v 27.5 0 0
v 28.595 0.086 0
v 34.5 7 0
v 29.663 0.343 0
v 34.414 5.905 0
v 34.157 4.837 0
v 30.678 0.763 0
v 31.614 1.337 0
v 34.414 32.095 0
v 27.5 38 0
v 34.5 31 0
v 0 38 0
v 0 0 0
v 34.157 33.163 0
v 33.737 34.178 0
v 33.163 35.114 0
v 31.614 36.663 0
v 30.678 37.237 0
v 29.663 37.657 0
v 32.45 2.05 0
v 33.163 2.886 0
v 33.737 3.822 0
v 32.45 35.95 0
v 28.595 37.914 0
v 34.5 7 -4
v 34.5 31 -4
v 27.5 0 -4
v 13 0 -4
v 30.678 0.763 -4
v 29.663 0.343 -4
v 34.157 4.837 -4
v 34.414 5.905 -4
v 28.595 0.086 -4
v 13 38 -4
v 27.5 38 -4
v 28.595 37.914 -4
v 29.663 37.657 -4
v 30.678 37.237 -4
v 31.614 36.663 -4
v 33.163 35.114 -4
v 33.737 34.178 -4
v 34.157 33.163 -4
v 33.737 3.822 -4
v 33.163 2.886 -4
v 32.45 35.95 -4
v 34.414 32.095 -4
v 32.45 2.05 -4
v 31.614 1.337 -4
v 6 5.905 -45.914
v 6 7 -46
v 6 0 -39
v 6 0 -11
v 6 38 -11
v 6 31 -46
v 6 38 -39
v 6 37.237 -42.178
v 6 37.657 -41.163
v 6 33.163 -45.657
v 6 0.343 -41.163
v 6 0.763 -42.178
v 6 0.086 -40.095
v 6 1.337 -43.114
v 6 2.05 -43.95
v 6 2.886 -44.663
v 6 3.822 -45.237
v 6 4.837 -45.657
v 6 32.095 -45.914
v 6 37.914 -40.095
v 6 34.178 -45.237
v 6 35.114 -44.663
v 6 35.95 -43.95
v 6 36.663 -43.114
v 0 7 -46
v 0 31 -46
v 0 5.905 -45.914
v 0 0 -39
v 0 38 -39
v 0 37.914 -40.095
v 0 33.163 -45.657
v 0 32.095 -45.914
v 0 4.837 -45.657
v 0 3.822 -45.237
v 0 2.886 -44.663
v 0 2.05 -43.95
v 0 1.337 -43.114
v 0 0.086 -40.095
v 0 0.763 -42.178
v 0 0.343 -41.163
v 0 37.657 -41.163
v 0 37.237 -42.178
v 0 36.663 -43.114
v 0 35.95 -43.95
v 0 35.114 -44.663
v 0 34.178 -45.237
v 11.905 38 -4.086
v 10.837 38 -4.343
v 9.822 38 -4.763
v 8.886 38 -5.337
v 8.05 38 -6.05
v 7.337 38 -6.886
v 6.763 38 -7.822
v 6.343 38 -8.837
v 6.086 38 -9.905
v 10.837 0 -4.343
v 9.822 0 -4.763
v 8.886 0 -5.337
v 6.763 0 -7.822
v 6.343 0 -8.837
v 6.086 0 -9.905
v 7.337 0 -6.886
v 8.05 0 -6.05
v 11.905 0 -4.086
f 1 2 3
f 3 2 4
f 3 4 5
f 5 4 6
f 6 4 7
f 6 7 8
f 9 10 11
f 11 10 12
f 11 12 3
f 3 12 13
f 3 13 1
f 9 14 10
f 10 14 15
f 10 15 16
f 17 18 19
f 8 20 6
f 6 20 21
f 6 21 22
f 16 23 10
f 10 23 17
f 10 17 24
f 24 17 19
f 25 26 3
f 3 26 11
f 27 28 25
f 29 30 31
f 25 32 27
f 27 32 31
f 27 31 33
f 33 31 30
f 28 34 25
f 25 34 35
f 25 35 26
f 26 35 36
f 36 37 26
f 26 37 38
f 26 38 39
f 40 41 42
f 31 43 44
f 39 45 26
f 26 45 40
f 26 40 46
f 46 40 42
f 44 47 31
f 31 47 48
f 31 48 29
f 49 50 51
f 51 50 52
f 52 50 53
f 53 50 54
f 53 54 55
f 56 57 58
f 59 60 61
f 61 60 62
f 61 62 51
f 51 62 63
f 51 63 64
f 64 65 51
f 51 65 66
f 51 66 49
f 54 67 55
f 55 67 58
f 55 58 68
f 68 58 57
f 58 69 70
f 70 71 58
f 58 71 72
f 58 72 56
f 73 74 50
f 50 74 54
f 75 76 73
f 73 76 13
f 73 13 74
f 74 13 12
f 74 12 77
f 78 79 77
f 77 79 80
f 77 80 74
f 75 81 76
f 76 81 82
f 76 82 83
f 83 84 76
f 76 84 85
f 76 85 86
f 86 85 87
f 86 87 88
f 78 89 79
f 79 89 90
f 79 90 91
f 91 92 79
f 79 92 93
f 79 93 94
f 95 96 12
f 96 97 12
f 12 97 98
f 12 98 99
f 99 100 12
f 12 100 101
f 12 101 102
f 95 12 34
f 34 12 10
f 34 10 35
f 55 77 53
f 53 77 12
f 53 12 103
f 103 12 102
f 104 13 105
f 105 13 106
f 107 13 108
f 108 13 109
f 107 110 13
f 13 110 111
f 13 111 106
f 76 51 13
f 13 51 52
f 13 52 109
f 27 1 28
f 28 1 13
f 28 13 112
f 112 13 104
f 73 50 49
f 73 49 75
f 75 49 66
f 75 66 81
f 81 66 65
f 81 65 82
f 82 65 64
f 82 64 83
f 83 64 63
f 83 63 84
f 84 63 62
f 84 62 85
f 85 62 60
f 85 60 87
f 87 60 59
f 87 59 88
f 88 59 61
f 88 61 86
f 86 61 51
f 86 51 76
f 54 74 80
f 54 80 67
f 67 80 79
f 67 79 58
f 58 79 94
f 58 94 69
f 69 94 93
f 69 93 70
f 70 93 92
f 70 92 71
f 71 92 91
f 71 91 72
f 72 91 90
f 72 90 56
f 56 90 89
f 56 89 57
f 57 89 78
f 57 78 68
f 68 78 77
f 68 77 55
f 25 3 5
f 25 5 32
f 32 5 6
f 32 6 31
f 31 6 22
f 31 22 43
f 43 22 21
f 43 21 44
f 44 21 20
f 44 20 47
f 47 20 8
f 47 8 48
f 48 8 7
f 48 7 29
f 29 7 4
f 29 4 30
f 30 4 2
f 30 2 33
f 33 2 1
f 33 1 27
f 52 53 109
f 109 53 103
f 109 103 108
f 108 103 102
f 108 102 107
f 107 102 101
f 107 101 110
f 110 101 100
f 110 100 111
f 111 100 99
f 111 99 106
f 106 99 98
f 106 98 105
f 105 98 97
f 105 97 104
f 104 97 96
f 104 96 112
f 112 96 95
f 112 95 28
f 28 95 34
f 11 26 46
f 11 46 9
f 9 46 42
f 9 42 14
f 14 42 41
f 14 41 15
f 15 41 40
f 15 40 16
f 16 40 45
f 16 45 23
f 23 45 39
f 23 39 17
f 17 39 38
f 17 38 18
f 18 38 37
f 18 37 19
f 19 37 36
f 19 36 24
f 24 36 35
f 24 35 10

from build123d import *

# Parameters (mm, degrees)
BOSS_EXTRUDE1_DEPTH = 38
FILLET2_R           = 7


with BuildPart() as part:
    # Sketch1 → Boss-Extrude1 (new body)
    with BuildSketch(Plane(origin=(0, 0, 0), x_dir=(1, 0, 0), z_dir=(0, 1, 0))):
        Polygon((0, 0), (0, 46), (6, 46), (6, 4), (34.5, 4), (34.5, 0), align=None)
    extrude(amount=BOSS_EXTRUDE1_DEPTH)

    # Fillet2
    fillet2_edges = [part.edges().sort_by_distance(p)[0] for p in [
        (6, 19, -4),
        (3, 38, -46),
        (3, 0, -46),
        (34.5, 0, -2),
        (34.5, 38, -2),
    ]]
    fillet(fillet2_edges, radius=FILLET2_R)


solid = part.part
